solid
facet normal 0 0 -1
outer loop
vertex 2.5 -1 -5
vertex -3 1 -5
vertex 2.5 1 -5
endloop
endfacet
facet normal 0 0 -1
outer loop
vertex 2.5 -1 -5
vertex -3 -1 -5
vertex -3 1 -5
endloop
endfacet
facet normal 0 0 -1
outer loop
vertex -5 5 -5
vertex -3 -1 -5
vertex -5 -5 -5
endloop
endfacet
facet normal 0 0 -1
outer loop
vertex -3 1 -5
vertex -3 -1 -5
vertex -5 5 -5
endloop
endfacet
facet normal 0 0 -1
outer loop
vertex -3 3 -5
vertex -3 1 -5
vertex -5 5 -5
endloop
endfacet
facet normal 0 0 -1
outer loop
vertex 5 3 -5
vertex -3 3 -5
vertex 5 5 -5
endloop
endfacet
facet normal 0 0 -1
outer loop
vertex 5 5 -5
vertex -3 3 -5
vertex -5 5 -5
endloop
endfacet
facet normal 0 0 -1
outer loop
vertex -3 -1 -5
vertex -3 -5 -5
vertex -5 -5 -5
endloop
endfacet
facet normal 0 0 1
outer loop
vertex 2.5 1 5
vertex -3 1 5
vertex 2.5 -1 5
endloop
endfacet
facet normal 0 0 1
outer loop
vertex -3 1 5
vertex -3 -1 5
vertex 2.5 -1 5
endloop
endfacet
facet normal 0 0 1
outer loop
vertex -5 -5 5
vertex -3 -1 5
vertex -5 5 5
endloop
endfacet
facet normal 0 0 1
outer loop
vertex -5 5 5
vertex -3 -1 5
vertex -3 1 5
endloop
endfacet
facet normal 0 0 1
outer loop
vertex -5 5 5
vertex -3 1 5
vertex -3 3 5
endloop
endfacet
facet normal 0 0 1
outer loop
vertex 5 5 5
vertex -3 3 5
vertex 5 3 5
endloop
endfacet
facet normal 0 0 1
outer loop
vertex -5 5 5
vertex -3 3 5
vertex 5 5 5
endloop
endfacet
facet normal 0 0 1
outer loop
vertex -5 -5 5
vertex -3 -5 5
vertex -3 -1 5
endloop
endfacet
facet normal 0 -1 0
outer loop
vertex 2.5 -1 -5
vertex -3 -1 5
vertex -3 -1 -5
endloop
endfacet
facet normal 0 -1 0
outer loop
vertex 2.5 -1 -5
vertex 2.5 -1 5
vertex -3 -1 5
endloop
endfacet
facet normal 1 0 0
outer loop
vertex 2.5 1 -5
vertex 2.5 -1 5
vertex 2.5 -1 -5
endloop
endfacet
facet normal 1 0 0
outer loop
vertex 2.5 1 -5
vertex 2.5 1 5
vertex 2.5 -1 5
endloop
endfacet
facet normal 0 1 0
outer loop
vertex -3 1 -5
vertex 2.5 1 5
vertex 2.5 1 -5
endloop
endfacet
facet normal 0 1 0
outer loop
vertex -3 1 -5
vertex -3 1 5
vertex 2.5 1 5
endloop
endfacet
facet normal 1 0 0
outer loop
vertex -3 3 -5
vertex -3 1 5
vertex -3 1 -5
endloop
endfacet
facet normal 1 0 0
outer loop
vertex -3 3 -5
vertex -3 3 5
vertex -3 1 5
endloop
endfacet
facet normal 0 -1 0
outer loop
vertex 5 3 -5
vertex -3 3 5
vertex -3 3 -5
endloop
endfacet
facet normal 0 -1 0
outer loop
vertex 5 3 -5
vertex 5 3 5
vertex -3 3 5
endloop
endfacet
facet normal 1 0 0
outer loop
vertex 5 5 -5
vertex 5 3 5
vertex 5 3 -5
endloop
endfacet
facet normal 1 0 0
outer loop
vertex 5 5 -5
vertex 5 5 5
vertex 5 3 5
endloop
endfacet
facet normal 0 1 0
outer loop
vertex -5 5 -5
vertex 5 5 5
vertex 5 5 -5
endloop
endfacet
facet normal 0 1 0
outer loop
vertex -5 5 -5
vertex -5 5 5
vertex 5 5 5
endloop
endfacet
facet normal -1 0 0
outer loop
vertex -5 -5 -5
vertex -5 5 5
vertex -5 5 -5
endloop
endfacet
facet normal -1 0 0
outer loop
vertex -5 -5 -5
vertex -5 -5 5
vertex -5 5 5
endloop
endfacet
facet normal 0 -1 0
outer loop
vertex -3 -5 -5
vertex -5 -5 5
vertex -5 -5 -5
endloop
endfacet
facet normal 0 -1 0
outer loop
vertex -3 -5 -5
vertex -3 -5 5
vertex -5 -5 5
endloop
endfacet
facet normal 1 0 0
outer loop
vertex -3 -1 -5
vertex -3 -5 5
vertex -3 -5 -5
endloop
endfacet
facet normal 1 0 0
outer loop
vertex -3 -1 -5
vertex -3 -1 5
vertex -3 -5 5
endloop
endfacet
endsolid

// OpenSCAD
// Generated by SolidPython 1.1.3 on 2025-02-20 04:05:06
$fn=50;


translate(v = [-5.0000000000, -5.0000000000, -5.0000000000]) {
	linear_extrude(height = 10) {
		polygon(points = [[0, 0], [2.0000000000, 0], [2.0000000000, 4.0000000000], [7.5000000000, 4.0000000000], [7.5000000000, 6.0000000000], [2.0000000000, 6.0000000000], [2.0000000000, 8.0000000000], [10, 8.0000000000], [10, 10], [0, 10]]);
	}
}
/***********************************************
*********      SolidPython code:      **********
************************************************
 
from solid import *
from solid.utils import *

import math
import matplotlib.pyplot as plt
import subprocess
import os

class Hole:
    def __init__(self, x, y, radius):
        """
        Hole defined by:
        :param x: x dimension for center point of the circle as a ratio of letter height
        :param y: y dimension for center point of the circle as a ratio of letter height
        :param radius: radius of circle as a ratio of letter height
        """
        self.x = x
        self.y = y
        self.radius = radius

class Letter3D:
    def __init__(self, name, outer_shape_points, height, holes=None):
        """
        3D Letter defined by:
        :param name: name of letter
        :param outer_shape_points: points defining the outer shape of the letter
        :param heigh: size of cube that letter fits inside
        :param holes: list of Holes
        """
        self.name = name
        self.outer_shape_points = outer_shape_points
        self.holes = holes if holes is None else []
        self.height = height


    def generate(self):
        shape = polygon(points=self.outer_shape_points)

        if self.holes:
            for hole in self.holes:
                circle_hole = circle(r=hole.radius*self.height)
                positioned_hole = translate([hole.x*self.height, hole.y*self.height])(circle_hole)
                shape = difference()(shape, positioned_hole)
        
        shape_3d = linear_extrude(height=self.height)(shape)
        shape_3d = translate([-self.height/2, -self.height/2, -self.height/2])(shape_3d)
        return shape_3d
    
    def render(self):
        scad_render_to_file(self.shape, f"output/{self.name}.scad", file_header='$fn=50;')
        subprocess.run(["C:\\Program Files\\OpenSCAD\\openscad.exe", "-o", f"output\\{self.name}.stl", f"output\\{self.name}.scad"])


class TwoLetter3D:
    def __init__(self, height, letterA, letterA_face, letterB=None, letterB_face=None):
        self.height = height
        self.letterA = letterA
        self.letterB = letterB
        self.letterA_face = letterA_face
        self.letterB_face = letterB_face

    def call_letter_generation(self, letter):
        letter = letter.upper()
        function_name = f"letter_{letter}"
        func = globals().get(function_name)
        if func is None:
            raise ValueError(f"No letter generation function defined for letter '{letter}'.")
        else:
            print(func)
        return func(self.height)
    
    def rotate_object(self, face, shape):
        face = face.lower()
        if face == "z":
            return shape
        if face == "x":
            return rotate(a=90, v=[0,1,0])(shape)
        if face == "y":
            return rotate(a=-90, v=[0,0,1])(shape)
        else:
            raise ValueError("Face must be one of 'x', 'y', or 'z'.")

    def render(self):
        if self.letterA:
            letterA3D = self.call_letter_generation(self.letterA)
            letterA3D = self.rotate_object(self.letterA_face, letterA3D)

        if self.letterB:
            letterB3D = self.call_letter_generation(self.letterB)
            letterB3D = self.rotate_object(self.letterB_face, letterB3D)
            combined = intersection()(letterA3D, letterB3D)
            file_name = self.letterA + self.letterB
            scad_render_to_file(combined, f"output/{file_name}.scad", file_header='$fn=50;')
            subprocess.run(["C:\\Program Files\\OpenSCAD\\openscad.exe", "-o", f"output\\{file_name}.stl", f"output\\{file_name}.scad"])
            return
        else:
            file_name = self.letterA
            scad_render_to_file(letterA3D, f"output/{file_name}.scad", file_header='$fn=50;')
            subprocess.run(["C:\\Program Files\\OpenSCAD\\openscad.exe", "-o", f"output\\{file_name}.stl", f"output\\{file_name}.scad"])
    
                

def arc_points(radius, start_angle, end_angle, center=[0,0], num_points=50):
    angles = [start_angle + i * (end_angle - start_angle) / (num_points - 1)
              for i in range(num_points)]
    points = [
        (center[0] + radius * math.cos(math.radians(angle)),
         center[1] + radius * math.sin(math.radians(angle)))
        for angle in angles
    ]
    return points

def letter_A(h):
    shape_points = [(0,0), (h/2, h), (h, 0), (5/6*h, 0), (2/3*h, 1/3*h), (1/3*h, 1/3*h), (h/6, 0)]
    holes = [Hole(1/2, 7/12, 1/6)]
    A = Letter3D("A", shape_points, h, holes)
    return A.generate()

def letter_B(h):
    top_arc_points = arc_points(h/4, 90, -90, center=[3/4*h, 3/4*h])
    bottom_arc_points = arc_points(h/4, 90, -90, center=[3/4*h, h/4])
    other_points = [(0,0),(0,h)]

    shape_points = top_arc_points + bottom_arc_points + other_points
    holes = [Hole(1/2, 3/4, 1/6), Hole(1/2, 1/4, 1/6)]
    B = Letter3D("B", shape_points, h, holes)
    return B.generate()

def letter_C(h):
    outer_arc_points = arc_points(h/2, 30, 330, center=[h/2,h/2])
    inner_arc_points = arc_points(h/4, 30, 330, center=[h/2,h/2])[::-1]
    shape_points = outer_arc_points + inner_arc_points
    # print(shape_points)
    C = Letter3D("C", shape_points, h)
    return C.generate()


def letter_D(h):
    outer_arc_points = arc_points(h/2, 90, -90, center= [h/2, h/2])
    shape_points = outer_arc_points + [(0,0), (0, h)]
    holes = [Hole(1/2, 1/2, 1/6)]
    D = Letter3D("D", shape_points, h, holes)
    return D.generate()

def letter_E(h):
    points = [(0,0), (h,0), (h,h/5), (h/5,h/5), (h/5,2/5*h), (3/4*h,2/5*h), (3/4*h,3/5*h), (h/5,3/5*h), (h/5,4/5*h), (h,4/5*h), (h,h), (0,h)]
    E = Letter3D("E", points, h)
    return E.generate()

def letter_F(h):
    points = [(0,0), (h/5,0), (h/5,2/5*h), (3/4*h,2/5*h), (3/4*h,3/5*h), (h/5,3/5*h), (h/5,4/5*h), (h,4/5*h), (h,h), (0,h)]
    F = Letter3D("F", points, h)
    return F.generate()

if __name__ == "__main__":
    os.makedirs("output", exist_ok=True)
    
    letters = [chr(x) for x in range(ord('A'), ord('F') + 1)]

    # Generate all combos
    # for letter in letters:
    #     for other_letter in letters:
    #         shape = TwoLetter3D(10, letter, "z", other_letter, "y")
    #         shape.render()

    # Generate all letters
    for letter in letters:
        shape = TwoLetter3D(10, letter, "z")
        shape.render()
 
 
************************************************/
